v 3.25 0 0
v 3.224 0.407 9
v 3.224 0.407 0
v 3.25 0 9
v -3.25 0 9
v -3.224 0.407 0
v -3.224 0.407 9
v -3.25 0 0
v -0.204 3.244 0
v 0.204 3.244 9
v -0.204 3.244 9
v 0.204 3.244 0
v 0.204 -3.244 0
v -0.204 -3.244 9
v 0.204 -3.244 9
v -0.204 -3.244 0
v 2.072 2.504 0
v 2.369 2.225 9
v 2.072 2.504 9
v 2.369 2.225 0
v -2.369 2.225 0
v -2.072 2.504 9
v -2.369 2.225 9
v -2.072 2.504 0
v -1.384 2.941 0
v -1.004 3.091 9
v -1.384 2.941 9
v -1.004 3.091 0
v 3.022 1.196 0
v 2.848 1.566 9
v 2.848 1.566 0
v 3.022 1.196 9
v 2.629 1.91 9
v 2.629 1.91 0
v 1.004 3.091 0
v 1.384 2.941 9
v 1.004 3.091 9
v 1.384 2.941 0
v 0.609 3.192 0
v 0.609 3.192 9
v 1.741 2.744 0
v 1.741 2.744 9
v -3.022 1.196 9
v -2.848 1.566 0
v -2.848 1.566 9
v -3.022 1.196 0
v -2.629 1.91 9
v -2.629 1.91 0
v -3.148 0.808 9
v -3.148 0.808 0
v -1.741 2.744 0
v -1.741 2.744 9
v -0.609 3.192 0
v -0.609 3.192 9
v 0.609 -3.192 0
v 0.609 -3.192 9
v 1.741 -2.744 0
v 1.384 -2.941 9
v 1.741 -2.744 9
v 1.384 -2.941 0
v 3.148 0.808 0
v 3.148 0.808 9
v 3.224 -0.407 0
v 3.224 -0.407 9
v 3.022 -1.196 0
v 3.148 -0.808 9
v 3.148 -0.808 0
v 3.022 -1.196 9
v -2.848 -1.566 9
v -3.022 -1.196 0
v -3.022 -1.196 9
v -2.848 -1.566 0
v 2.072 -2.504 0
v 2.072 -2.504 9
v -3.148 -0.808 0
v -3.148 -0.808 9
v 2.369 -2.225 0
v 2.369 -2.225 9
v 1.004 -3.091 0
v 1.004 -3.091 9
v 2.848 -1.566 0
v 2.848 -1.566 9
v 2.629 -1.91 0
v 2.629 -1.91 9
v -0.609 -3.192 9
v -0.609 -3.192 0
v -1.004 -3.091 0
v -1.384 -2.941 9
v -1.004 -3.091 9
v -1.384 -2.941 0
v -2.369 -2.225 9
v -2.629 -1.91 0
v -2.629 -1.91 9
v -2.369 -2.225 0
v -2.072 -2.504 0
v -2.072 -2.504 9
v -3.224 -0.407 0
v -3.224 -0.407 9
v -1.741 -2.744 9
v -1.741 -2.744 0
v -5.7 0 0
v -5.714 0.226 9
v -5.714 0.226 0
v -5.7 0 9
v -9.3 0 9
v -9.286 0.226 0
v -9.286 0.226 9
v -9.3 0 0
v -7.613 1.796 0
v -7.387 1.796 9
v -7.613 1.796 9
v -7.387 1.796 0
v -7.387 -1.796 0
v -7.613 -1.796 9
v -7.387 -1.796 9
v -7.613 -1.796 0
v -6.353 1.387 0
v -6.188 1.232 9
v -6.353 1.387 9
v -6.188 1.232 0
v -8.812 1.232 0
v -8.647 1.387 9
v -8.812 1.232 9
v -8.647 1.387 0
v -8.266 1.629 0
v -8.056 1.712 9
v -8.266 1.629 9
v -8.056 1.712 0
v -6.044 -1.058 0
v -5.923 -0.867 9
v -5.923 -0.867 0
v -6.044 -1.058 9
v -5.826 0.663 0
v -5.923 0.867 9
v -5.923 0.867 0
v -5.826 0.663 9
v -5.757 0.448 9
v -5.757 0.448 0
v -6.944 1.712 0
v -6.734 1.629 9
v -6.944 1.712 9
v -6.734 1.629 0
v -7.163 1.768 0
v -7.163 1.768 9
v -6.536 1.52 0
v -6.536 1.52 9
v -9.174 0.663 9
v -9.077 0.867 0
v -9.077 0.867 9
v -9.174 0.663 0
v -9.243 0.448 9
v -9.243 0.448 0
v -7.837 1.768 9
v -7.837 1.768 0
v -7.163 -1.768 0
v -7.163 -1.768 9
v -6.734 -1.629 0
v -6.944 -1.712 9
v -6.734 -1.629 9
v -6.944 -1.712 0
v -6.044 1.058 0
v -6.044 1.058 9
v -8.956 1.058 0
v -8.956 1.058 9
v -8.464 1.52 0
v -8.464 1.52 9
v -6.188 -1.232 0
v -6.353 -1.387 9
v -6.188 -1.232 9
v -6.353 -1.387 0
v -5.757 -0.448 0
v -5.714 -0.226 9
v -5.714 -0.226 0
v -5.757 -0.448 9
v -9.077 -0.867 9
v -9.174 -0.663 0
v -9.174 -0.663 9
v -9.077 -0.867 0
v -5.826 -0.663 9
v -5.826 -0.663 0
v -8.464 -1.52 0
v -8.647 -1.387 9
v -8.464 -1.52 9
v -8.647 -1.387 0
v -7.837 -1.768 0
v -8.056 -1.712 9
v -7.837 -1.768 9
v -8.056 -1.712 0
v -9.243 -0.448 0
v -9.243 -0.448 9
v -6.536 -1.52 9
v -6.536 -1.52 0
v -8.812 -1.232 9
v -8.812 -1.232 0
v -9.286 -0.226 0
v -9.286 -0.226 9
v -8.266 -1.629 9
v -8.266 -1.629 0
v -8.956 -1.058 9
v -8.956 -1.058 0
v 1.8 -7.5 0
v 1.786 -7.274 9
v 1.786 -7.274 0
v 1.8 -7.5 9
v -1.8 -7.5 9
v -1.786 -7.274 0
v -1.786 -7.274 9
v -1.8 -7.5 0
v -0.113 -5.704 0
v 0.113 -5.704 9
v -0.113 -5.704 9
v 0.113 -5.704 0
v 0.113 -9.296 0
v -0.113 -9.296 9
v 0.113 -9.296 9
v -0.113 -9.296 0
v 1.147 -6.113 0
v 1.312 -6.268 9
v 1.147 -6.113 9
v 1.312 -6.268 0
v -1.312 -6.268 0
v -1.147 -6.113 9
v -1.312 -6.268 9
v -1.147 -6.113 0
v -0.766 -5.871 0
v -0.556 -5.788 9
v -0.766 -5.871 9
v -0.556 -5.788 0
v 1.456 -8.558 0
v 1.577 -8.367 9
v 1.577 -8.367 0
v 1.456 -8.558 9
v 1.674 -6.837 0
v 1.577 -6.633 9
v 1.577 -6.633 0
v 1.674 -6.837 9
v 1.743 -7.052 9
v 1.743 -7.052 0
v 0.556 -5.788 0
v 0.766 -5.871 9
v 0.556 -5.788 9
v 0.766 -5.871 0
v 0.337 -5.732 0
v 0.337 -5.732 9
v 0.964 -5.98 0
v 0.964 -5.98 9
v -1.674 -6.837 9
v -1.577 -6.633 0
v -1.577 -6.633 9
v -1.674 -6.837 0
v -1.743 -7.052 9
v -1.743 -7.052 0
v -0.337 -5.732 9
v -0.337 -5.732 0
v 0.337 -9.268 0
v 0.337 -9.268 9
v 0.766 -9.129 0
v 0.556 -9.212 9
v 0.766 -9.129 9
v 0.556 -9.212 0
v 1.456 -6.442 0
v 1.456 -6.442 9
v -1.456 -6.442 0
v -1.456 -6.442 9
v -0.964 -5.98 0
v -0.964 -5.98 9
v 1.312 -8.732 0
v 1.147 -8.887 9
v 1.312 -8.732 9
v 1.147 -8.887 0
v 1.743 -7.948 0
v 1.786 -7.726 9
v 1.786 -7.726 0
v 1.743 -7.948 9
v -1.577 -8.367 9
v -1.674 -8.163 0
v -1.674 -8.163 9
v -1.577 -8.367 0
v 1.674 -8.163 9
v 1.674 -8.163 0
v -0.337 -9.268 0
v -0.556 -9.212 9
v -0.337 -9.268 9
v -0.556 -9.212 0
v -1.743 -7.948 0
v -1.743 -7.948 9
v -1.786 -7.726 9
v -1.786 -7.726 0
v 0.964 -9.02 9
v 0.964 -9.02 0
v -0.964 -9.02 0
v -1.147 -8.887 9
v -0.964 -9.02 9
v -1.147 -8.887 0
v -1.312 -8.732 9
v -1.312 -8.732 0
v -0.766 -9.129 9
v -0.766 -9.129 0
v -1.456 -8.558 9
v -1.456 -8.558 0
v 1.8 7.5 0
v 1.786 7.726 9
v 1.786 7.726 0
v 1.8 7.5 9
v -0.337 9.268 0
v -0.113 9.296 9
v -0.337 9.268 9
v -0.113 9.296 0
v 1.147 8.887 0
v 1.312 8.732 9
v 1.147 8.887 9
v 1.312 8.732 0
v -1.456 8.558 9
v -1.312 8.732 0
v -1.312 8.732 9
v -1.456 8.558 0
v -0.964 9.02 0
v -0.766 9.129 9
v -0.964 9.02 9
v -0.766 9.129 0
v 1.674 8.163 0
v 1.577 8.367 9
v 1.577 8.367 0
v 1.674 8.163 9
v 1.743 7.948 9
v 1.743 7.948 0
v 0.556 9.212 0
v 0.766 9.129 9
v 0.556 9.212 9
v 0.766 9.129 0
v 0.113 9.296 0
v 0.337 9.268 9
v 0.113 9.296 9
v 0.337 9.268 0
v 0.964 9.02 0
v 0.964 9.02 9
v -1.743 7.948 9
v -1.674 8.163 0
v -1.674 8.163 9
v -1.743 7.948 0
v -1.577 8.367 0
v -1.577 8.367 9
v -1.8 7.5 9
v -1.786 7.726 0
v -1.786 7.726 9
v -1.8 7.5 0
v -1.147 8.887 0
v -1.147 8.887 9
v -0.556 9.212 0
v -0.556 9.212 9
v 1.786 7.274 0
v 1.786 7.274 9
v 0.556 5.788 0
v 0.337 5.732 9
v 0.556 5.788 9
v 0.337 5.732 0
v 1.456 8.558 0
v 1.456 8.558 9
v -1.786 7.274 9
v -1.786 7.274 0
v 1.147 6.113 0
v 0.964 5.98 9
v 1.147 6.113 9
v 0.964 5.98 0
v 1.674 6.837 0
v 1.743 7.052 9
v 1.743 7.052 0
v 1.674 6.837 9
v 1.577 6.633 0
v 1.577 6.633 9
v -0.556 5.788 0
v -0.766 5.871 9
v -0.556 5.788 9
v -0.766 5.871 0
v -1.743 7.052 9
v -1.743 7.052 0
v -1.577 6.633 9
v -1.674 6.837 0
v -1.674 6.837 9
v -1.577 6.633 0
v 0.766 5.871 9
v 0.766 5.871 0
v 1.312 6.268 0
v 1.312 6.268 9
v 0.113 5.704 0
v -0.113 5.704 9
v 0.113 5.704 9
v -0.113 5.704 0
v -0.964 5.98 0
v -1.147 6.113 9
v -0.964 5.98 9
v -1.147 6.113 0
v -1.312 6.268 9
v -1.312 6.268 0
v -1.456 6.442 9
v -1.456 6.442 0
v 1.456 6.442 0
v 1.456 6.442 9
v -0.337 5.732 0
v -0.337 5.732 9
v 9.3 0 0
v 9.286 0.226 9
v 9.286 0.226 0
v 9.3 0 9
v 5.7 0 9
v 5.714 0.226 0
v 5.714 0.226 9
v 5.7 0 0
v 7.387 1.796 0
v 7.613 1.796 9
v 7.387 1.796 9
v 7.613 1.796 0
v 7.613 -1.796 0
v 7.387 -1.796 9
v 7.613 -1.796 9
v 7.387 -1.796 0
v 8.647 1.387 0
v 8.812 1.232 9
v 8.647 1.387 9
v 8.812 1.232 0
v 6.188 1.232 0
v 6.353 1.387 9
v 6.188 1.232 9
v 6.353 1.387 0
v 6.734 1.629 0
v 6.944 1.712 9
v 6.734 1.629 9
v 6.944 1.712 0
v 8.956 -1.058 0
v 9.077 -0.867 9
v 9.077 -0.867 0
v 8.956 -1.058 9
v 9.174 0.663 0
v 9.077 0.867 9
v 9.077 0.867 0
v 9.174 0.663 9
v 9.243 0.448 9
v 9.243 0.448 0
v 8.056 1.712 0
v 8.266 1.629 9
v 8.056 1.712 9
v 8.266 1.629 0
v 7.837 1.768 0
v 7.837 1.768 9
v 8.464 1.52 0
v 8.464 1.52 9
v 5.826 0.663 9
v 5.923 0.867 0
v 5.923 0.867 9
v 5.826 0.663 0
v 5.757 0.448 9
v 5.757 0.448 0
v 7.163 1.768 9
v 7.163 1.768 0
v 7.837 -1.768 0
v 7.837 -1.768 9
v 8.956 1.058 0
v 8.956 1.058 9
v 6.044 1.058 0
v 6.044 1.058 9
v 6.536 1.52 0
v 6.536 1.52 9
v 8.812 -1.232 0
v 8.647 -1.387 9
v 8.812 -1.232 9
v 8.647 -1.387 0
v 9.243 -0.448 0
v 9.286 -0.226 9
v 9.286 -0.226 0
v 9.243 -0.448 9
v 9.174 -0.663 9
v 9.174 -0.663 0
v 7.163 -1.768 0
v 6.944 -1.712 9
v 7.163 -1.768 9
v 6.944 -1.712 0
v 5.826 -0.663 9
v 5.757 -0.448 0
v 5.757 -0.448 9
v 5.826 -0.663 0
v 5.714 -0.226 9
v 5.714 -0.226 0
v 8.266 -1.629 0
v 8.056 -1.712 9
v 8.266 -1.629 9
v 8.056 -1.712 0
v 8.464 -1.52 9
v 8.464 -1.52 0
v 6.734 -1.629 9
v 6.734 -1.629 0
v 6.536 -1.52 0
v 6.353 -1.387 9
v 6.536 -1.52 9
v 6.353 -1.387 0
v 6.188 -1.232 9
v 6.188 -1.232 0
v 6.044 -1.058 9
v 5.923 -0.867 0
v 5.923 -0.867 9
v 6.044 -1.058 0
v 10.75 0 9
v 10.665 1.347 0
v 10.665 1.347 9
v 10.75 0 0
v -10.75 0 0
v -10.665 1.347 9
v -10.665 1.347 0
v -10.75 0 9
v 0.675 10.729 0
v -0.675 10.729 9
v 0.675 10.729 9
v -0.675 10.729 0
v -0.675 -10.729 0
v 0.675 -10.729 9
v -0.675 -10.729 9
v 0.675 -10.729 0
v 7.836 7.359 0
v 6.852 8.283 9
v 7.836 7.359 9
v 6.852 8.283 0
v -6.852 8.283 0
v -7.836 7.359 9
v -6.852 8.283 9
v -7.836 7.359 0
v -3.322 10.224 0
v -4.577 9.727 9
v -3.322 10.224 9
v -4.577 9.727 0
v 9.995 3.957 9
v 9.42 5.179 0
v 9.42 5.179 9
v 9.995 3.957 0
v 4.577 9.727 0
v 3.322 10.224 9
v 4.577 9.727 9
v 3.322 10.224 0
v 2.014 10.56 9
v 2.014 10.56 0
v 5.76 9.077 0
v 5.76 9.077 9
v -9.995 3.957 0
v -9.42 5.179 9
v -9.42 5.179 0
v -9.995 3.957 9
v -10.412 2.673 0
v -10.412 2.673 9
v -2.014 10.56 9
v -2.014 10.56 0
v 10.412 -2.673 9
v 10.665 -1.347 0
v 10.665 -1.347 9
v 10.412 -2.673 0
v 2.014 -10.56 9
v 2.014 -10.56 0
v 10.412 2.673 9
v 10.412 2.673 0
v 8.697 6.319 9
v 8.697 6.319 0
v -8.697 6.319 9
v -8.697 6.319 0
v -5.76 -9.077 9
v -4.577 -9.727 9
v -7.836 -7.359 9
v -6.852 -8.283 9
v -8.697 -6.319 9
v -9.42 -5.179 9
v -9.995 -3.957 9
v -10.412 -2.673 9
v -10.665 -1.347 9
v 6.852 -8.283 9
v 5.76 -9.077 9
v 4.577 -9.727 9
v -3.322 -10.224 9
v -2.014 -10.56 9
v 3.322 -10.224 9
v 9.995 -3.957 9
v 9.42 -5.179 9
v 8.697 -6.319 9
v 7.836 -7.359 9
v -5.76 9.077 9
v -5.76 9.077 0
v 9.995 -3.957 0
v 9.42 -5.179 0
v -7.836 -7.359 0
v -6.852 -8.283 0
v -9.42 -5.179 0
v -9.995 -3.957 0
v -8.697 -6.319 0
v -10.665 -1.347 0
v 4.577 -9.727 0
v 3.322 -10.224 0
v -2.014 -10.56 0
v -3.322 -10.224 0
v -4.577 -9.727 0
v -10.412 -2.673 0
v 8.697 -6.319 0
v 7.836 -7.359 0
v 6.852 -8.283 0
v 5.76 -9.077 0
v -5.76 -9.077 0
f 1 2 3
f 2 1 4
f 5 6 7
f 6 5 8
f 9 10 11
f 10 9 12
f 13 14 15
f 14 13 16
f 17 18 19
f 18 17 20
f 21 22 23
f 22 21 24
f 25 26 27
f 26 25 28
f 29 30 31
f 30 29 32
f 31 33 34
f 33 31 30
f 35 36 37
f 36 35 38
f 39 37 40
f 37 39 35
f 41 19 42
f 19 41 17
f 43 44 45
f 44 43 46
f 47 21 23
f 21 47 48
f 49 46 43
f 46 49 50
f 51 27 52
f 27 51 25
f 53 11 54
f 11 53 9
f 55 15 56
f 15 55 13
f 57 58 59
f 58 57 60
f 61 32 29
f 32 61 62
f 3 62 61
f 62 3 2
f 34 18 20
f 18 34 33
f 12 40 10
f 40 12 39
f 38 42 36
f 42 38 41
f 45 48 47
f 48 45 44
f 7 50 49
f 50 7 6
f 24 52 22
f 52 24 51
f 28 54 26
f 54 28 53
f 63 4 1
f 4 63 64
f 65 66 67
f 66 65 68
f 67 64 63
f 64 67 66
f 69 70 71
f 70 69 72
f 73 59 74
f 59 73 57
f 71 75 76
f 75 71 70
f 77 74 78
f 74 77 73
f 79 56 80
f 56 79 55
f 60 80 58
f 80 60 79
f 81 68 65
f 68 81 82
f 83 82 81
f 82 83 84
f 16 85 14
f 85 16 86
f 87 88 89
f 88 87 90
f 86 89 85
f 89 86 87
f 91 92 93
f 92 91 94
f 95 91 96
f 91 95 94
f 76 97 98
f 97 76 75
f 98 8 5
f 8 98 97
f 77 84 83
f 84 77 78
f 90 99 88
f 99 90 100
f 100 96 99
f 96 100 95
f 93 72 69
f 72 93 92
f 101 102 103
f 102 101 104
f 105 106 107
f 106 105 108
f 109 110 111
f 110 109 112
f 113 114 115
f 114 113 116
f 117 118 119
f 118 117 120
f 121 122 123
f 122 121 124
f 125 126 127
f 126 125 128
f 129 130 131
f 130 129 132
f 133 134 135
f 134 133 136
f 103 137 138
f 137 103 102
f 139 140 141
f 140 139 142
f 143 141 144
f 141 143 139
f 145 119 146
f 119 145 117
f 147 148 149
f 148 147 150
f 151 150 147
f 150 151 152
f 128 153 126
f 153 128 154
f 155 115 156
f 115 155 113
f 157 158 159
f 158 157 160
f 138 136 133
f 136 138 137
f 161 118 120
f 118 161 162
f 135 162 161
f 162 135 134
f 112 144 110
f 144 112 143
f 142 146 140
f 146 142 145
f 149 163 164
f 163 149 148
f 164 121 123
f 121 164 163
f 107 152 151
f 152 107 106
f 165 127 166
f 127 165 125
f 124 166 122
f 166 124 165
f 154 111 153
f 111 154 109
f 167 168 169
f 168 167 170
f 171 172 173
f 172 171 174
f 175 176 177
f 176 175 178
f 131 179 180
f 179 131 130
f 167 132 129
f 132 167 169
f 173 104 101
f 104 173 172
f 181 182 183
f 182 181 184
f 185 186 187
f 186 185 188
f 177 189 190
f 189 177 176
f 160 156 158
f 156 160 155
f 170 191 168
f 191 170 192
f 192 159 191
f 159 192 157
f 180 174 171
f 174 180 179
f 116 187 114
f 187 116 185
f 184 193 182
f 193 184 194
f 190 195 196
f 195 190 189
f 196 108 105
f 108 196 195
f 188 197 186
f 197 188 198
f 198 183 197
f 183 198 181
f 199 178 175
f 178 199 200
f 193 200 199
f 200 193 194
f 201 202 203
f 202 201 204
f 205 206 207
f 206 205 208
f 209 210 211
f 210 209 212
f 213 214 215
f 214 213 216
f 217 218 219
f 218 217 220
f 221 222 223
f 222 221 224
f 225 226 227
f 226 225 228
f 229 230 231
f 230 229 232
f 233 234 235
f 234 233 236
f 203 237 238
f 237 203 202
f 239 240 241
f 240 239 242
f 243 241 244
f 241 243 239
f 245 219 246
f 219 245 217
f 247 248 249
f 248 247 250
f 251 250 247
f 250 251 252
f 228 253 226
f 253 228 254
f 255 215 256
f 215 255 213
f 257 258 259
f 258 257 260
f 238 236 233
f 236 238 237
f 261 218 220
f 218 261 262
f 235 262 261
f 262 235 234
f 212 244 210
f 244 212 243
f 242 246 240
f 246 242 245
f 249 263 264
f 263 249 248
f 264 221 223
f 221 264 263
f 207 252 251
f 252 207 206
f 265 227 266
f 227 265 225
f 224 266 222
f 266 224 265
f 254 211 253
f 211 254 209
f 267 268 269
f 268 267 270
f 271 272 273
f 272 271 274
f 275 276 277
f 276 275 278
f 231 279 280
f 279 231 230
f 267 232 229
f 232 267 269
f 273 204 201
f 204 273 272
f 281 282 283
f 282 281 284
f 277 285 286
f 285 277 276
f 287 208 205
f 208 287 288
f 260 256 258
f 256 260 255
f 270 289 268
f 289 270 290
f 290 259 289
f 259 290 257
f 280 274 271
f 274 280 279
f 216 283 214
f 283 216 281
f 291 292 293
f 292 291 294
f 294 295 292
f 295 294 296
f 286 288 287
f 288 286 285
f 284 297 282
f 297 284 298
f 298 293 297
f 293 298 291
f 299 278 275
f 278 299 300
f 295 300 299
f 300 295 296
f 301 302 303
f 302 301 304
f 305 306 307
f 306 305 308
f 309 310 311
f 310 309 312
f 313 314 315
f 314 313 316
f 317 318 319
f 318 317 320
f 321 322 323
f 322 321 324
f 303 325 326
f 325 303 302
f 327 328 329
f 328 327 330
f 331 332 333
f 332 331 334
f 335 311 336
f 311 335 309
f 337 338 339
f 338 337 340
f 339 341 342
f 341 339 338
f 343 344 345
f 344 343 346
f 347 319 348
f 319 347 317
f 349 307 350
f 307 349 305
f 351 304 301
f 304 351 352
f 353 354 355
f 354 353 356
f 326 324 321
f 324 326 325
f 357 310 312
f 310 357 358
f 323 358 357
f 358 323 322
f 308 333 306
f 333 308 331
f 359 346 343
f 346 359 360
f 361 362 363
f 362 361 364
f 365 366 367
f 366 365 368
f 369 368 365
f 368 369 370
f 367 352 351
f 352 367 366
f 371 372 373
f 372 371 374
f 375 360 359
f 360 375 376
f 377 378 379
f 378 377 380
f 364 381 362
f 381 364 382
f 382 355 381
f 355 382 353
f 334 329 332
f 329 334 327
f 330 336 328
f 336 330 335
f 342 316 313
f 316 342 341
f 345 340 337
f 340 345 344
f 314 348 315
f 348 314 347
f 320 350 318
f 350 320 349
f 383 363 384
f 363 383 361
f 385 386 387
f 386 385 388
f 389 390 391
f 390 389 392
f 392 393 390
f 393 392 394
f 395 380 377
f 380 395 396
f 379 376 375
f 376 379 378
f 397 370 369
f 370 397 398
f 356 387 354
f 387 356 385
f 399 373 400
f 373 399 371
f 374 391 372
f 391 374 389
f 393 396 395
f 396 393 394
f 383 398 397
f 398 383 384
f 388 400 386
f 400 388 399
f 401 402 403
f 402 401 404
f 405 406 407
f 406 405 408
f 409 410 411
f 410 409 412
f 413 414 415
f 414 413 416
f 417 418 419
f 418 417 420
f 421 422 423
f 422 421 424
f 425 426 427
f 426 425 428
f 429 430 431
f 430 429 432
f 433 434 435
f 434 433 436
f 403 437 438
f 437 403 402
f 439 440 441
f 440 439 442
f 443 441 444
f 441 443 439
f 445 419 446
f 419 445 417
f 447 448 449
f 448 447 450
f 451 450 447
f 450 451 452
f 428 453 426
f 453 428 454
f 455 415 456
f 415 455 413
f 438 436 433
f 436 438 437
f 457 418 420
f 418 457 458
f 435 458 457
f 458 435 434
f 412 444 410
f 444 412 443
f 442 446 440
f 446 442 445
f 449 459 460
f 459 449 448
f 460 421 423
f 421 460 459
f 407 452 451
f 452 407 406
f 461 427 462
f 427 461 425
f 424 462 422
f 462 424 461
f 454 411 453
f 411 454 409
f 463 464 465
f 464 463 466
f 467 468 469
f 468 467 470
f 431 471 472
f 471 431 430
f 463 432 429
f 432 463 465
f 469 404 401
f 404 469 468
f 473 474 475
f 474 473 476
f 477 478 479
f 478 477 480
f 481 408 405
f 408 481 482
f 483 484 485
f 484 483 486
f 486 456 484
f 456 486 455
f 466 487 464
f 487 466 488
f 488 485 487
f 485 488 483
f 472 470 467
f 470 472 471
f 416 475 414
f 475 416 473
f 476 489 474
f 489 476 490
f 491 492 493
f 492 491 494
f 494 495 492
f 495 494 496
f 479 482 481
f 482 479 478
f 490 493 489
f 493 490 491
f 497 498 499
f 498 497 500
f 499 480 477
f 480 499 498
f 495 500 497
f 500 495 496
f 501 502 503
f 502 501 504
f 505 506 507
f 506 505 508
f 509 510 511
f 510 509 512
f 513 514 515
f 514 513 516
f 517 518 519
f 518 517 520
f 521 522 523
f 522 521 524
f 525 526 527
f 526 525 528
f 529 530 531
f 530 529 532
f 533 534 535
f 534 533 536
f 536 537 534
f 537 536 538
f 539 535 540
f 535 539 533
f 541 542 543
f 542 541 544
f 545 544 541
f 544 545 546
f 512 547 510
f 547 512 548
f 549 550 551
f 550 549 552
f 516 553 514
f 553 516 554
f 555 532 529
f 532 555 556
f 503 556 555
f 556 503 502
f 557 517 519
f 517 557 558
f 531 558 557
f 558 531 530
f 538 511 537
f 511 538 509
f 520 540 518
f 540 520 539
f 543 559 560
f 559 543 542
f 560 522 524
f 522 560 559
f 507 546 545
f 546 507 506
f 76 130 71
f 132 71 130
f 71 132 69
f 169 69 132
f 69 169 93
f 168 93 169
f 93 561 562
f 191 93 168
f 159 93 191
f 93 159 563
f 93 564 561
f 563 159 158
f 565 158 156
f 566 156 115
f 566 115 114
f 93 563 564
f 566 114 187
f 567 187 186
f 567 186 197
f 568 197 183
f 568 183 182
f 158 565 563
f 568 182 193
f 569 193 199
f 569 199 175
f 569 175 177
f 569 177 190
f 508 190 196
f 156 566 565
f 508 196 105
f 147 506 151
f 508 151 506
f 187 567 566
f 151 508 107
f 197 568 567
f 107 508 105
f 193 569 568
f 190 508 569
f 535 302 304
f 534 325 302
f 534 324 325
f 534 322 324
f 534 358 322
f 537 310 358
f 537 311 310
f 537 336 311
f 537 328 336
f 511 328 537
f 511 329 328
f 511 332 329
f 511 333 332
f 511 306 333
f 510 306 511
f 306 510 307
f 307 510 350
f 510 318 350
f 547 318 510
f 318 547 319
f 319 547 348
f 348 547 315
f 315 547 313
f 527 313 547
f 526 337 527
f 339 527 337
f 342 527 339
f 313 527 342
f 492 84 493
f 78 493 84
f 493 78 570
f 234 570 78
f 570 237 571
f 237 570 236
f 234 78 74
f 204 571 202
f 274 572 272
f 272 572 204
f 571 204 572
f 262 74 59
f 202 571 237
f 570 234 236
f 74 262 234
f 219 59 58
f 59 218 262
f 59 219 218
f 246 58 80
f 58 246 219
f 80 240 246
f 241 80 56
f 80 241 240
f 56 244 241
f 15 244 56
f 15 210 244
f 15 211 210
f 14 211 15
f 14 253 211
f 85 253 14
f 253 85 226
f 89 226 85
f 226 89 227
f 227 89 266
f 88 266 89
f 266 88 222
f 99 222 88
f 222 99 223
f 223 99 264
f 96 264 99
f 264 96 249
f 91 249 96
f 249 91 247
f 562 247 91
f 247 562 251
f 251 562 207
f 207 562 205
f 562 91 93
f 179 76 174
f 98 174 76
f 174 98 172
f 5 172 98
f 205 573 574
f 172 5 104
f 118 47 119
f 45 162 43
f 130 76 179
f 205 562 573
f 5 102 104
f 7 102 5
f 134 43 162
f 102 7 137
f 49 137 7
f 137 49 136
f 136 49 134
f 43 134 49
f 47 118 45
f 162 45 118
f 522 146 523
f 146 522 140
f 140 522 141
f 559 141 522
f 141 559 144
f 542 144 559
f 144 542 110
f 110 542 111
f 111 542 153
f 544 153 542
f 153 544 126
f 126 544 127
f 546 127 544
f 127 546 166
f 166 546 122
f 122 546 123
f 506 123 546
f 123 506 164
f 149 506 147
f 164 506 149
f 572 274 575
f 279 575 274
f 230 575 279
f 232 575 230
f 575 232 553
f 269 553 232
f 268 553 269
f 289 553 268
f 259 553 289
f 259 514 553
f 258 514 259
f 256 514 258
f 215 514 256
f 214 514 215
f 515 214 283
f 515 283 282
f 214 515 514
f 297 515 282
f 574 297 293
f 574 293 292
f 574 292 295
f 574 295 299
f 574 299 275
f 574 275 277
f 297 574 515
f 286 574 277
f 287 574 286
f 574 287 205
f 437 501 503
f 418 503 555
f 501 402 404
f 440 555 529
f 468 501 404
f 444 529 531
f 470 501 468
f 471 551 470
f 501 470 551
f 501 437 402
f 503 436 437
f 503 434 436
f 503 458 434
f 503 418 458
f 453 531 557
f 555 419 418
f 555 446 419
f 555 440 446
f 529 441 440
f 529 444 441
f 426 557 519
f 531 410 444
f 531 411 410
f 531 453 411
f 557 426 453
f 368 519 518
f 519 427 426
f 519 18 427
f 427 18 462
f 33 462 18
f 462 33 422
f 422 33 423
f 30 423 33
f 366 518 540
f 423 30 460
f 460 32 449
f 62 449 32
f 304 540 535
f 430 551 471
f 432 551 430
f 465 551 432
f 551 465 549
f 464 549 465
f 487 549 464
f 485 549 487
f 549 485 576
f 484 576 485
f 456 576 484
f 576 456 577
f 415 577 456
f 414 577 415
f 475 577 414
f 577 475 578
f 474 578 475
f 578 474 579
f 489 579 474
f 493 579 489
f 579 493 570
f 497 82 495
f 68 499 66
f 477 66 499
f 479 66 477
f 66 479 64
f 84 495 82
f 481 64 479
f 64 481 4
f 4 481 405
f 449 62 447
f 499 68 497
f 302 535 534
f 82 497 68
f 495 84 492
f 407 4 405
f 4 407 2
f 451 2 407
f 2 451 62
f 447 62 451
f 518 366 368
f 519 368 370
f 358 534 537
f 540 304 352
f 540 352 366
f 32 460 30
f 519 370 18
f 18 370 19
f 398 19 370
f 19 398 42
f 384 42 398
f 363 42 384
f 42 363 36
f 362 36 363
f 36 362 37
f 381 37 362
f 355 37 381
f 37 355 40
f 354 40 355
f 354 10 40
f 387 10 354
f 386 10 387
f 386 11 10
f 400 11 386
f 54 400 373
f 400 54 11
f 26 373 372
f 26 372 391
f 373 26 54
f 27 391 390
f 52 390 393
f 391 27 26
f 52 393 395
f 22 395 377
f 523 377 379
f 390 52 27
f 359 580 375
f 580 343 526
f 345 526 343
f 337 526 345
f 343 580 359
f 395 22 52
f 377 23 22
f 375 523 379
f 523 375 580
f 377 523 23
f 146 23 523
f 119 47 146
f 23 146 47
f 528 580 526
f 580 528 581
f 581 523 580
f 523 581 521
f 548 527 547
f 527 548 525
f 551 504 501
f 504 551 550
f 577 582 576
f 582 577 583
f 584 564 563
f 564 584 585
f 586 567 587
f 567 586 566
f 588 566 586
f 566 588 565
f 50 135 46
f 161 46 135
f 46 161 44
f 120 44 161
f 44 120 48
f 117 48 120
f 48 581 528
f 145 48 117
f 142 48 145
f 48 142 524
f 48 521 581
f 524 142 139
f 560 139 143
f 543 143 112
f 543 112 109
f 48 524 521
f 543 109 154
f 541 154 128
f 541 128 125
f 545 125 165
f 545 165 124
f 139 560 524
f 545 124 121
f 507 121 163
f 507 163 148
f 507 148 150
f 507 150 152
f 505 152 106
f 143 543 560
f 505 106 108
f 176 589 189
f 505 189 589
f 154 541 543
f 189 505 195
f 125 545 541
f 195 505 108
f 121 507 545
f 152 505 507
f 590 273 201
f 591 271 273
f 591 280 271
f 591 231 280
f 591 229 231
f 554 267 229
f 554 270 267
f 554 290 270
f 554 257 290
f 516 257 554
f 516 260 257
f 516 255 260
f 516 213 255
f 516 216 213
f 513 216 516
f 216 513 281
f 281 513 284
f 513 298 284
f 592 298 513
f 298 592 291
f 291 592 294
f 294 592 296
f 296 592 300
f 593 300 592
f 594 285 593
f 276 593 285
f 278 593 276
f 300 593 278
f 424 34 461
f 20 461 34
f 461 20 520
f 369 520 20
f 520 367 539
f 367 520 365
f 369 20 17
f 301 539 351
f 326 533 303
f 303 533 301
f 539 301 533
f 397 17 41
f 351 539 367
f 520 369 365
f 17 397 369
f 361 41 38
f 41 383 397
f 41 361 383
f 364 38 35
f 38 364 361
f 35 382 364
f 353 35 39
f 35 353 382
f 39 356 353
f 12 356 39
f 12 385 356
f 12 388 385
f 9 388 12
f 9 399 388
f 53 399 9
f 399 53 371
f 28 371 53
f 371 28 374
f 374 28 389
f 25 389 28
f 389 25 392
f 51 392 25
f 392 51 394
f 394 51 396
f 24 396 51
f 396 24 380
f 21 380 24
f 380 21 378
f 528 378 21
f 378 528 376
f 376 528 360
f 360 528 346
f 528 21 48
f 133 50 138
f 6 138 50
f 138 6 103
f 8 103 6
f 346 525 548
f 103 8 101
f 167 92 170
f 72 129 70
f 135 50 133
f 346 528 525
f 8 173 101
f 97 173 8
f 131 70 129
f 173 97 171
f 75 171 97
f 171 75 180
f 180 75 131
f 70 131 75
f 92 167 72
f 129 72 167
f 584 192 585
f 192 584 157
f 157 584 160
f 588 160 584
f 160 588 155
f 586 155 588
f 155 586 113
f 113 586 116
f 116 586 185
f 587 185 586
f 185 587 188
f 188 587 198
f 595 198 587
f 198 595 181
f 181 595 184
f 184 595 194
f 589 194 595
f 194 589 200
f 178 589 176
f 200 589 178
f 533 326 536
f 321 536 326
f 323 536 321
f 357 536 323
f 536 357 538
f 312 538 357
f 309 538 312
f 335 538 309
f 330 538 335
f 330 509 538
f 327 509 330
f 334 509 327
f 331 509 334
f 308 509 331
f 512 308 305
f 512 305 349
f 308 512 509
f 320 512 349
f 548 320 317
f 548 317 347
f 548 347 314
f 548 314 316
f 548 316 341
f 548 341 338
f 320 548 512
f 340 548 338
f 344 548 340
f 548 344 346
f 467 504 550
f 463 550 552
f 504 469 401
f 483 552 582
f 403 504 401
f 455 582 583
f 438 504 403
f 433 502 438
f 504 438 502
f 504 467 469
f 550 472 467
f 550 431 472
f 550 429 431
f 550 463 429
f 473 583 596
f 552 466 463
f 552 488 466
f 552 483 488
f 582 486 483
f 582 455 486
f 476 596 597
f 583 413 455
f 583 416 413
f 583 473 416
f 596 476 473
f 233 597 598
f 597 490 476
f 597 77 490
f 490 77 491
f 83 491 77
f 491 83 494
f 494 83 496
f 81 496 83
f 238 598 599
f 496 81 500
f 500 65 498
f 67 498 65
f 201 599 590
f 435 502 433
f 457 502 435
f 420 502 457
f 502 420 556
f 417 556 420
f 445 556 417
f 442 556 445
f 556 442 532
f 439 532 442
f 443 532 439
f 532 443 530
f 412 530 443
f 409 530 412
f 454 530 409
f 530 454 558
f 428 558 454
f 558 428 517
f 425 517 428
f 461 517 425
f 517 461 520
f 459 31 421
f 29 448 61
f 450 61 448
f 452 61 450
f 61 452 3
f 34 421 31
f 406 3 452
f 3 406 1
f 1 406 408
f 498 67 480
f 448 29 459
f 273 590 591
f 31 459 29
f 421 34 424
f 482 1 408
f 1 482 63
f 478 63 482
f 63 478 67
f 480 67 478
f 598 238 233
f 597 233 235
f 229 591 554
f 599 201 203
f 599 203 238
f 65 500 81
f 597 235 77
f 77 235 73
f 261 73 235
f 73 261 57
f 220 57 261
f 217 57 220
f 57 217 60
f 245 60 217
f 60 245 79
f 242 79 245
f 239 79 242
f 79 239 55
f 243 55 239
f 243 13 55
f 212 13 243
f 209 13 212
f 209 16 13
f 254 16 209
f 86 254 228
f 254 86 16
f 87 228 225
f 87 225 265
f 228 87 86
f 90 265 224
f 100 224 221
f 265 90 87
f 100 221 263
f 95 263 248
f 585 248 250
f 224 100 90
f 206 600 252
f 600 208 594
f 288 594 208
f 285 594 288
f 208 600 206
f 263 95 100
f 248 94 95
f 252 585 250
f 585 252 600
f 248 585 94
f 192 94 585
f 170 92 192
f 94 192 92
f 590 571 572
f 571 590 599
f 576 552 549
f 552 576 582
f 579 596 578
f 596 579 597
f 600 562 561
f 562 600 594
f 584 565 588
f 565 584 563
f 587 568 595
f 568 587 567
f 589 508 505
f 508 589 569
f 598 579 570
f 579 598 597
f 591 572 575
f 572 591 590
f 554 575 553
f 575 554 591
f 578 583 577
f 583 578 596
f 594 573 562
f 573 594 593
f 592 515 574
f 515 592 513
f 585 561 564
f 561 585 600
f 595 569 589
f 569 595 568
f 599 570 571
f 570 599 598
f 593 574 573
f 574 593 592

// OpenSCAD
$fn = 50;


difference() {
	union() {
		*color(alpha = 1.0000000000, c = "gray") {
			translate(v = [0, 7, 0]) {
				linear_extrude(height = 1) {
					text(font = "Arial:style=Bold", halign = "center", size = 4.5000000000, text = "COMMENT circle main", valign = "center");
				}
			}
		}
		*color(alpha = 1.0000000000, c = "gray") {
			translate(v = [0, 14, 0]) {
				linear_extrude(height = 1.5000000000) {
					text(font = "Arial:style=Bold", halign = "center", size = 4.5000000000, text = "COMMENT description oobb_circle_shape_p_type_9_depth_1.5_diameter_9_thickness_1.5_width_1.5_height", valign = "center");
				}
			}
		}
		cylinder(h = 9, r = 10.7500000000);
	}
	union() {
		*color(alpha = 1.0000000000, c = "gray") {
			translate(v = [0, 7, 0]) {
				linear_extrude(height = 1) {
					text(font = "Arial:style=Bold", halign = "center", size = 4.5000000000, text = "COMMENT holes main", valign = "center");
				}
			}
		}
		*color(alpha = 1.0000000000, c = "gray") {
			translate(v = [0, 14, 0]) {
				linear_extrude(height = 1.5000000000) {
					text(font = "Arial:style=Bold", halign = "center", size = 4.5000000000, text = "COMMENT description oobb_holes_shape_n_type_1.5_diameter_9_thickness_1.5_width_1.5_height_true_both_holes_true_circle", valign = "center");
				}
			}
		}
		translate(v = [0.0000000000, 0.0000000000, -50.0000000000]) {
			cylinder(h = 100, r = 3.2500000000);
		}
		translate(v = [0.0000000000, 0.0000000000, -50.0000000000]) {
			cylinder(h = 100, r = 3.2500000000);
		}
		translate(v = [0.0000000000, 0.0000000000, -50.0000000000]) {
			cylinder(h = 100, r = 3.2500000000);
		}
		translate(v = [-7.5000000000, 0.0000000000, -50.0000000000]) {
			cylinder(h = 100, r = 1.8000000000);
		}
		translate(v = [0.0000000000, -7.5000000000, -50.0000000000]) {
			cylinder(h = 100, r = 1.8000000000);
		}
		translate(v = [0.0000000000, 0.0000000000, -50.0000000000]) {
			cylinder(h = 100, r = 1.8000000000);
		}
		translate(v = [0.0000000000, 7.5000000000, -50.0000000000]) {
			cylinder(h = 100, r = 1.8000000000);
		}
		translate(v = [7.5000000000, 0.0000000000, -50.0000000000]) {
			cylinder(h = 100, r = 1.8000000000);
		}
		translate(v = [-7.5000000000, 0.0000000000, -50.0000000000]) {
			cylinder(h = 100, r = 1.8000000000);
		}
		translate(v = [0.0000000000, -7.5000000000, -50.0000000000]) {
			cylinder(h = 100, r = 1.8000000000);
		}
		translate(v = [0.0000000000, 0.0000000000, -50.0000000000]) {
			cylinder(h = 100, r = 1.8000000000);
		}
		translate(v = [0.0000000000, 7.5000000000, -50.0000000000]) {
			cylinder(h = 100, r = 1.8000000000);
		}
		translate(v = [7.5000000000, 0.0000000000, -50.0000000000]) {
			cylinder(h = 100, r = 1.8000000000);
		}
		translate(v = [-7.5000000000, 0.0000000000, -50.0000000000]) {
			cylinder(h = 100, r = 1.8000000000);
		}
		translate(v = [0.0000000000, -7.5000000000, -50.0000000000]) {
			cylinder(h = 100, r = 1.8000000000);
		}
		translate(v = [0.0000000000, 0.0000000000, -50.0000000000]) {
			cylinder(h = 100, r = 1.8000000000);
		}
		translate(v = [0.0000000000, 7.5000000000, -50.0000000000]) {
			cylinder(h = 100, r = 1.8000000000);
		}
		translate(v = [7.5000000000, 0.0000000000, -50.0000000000]) {
			cylinder(h = 100, r = 1.8000000000);
		}
	}
}
